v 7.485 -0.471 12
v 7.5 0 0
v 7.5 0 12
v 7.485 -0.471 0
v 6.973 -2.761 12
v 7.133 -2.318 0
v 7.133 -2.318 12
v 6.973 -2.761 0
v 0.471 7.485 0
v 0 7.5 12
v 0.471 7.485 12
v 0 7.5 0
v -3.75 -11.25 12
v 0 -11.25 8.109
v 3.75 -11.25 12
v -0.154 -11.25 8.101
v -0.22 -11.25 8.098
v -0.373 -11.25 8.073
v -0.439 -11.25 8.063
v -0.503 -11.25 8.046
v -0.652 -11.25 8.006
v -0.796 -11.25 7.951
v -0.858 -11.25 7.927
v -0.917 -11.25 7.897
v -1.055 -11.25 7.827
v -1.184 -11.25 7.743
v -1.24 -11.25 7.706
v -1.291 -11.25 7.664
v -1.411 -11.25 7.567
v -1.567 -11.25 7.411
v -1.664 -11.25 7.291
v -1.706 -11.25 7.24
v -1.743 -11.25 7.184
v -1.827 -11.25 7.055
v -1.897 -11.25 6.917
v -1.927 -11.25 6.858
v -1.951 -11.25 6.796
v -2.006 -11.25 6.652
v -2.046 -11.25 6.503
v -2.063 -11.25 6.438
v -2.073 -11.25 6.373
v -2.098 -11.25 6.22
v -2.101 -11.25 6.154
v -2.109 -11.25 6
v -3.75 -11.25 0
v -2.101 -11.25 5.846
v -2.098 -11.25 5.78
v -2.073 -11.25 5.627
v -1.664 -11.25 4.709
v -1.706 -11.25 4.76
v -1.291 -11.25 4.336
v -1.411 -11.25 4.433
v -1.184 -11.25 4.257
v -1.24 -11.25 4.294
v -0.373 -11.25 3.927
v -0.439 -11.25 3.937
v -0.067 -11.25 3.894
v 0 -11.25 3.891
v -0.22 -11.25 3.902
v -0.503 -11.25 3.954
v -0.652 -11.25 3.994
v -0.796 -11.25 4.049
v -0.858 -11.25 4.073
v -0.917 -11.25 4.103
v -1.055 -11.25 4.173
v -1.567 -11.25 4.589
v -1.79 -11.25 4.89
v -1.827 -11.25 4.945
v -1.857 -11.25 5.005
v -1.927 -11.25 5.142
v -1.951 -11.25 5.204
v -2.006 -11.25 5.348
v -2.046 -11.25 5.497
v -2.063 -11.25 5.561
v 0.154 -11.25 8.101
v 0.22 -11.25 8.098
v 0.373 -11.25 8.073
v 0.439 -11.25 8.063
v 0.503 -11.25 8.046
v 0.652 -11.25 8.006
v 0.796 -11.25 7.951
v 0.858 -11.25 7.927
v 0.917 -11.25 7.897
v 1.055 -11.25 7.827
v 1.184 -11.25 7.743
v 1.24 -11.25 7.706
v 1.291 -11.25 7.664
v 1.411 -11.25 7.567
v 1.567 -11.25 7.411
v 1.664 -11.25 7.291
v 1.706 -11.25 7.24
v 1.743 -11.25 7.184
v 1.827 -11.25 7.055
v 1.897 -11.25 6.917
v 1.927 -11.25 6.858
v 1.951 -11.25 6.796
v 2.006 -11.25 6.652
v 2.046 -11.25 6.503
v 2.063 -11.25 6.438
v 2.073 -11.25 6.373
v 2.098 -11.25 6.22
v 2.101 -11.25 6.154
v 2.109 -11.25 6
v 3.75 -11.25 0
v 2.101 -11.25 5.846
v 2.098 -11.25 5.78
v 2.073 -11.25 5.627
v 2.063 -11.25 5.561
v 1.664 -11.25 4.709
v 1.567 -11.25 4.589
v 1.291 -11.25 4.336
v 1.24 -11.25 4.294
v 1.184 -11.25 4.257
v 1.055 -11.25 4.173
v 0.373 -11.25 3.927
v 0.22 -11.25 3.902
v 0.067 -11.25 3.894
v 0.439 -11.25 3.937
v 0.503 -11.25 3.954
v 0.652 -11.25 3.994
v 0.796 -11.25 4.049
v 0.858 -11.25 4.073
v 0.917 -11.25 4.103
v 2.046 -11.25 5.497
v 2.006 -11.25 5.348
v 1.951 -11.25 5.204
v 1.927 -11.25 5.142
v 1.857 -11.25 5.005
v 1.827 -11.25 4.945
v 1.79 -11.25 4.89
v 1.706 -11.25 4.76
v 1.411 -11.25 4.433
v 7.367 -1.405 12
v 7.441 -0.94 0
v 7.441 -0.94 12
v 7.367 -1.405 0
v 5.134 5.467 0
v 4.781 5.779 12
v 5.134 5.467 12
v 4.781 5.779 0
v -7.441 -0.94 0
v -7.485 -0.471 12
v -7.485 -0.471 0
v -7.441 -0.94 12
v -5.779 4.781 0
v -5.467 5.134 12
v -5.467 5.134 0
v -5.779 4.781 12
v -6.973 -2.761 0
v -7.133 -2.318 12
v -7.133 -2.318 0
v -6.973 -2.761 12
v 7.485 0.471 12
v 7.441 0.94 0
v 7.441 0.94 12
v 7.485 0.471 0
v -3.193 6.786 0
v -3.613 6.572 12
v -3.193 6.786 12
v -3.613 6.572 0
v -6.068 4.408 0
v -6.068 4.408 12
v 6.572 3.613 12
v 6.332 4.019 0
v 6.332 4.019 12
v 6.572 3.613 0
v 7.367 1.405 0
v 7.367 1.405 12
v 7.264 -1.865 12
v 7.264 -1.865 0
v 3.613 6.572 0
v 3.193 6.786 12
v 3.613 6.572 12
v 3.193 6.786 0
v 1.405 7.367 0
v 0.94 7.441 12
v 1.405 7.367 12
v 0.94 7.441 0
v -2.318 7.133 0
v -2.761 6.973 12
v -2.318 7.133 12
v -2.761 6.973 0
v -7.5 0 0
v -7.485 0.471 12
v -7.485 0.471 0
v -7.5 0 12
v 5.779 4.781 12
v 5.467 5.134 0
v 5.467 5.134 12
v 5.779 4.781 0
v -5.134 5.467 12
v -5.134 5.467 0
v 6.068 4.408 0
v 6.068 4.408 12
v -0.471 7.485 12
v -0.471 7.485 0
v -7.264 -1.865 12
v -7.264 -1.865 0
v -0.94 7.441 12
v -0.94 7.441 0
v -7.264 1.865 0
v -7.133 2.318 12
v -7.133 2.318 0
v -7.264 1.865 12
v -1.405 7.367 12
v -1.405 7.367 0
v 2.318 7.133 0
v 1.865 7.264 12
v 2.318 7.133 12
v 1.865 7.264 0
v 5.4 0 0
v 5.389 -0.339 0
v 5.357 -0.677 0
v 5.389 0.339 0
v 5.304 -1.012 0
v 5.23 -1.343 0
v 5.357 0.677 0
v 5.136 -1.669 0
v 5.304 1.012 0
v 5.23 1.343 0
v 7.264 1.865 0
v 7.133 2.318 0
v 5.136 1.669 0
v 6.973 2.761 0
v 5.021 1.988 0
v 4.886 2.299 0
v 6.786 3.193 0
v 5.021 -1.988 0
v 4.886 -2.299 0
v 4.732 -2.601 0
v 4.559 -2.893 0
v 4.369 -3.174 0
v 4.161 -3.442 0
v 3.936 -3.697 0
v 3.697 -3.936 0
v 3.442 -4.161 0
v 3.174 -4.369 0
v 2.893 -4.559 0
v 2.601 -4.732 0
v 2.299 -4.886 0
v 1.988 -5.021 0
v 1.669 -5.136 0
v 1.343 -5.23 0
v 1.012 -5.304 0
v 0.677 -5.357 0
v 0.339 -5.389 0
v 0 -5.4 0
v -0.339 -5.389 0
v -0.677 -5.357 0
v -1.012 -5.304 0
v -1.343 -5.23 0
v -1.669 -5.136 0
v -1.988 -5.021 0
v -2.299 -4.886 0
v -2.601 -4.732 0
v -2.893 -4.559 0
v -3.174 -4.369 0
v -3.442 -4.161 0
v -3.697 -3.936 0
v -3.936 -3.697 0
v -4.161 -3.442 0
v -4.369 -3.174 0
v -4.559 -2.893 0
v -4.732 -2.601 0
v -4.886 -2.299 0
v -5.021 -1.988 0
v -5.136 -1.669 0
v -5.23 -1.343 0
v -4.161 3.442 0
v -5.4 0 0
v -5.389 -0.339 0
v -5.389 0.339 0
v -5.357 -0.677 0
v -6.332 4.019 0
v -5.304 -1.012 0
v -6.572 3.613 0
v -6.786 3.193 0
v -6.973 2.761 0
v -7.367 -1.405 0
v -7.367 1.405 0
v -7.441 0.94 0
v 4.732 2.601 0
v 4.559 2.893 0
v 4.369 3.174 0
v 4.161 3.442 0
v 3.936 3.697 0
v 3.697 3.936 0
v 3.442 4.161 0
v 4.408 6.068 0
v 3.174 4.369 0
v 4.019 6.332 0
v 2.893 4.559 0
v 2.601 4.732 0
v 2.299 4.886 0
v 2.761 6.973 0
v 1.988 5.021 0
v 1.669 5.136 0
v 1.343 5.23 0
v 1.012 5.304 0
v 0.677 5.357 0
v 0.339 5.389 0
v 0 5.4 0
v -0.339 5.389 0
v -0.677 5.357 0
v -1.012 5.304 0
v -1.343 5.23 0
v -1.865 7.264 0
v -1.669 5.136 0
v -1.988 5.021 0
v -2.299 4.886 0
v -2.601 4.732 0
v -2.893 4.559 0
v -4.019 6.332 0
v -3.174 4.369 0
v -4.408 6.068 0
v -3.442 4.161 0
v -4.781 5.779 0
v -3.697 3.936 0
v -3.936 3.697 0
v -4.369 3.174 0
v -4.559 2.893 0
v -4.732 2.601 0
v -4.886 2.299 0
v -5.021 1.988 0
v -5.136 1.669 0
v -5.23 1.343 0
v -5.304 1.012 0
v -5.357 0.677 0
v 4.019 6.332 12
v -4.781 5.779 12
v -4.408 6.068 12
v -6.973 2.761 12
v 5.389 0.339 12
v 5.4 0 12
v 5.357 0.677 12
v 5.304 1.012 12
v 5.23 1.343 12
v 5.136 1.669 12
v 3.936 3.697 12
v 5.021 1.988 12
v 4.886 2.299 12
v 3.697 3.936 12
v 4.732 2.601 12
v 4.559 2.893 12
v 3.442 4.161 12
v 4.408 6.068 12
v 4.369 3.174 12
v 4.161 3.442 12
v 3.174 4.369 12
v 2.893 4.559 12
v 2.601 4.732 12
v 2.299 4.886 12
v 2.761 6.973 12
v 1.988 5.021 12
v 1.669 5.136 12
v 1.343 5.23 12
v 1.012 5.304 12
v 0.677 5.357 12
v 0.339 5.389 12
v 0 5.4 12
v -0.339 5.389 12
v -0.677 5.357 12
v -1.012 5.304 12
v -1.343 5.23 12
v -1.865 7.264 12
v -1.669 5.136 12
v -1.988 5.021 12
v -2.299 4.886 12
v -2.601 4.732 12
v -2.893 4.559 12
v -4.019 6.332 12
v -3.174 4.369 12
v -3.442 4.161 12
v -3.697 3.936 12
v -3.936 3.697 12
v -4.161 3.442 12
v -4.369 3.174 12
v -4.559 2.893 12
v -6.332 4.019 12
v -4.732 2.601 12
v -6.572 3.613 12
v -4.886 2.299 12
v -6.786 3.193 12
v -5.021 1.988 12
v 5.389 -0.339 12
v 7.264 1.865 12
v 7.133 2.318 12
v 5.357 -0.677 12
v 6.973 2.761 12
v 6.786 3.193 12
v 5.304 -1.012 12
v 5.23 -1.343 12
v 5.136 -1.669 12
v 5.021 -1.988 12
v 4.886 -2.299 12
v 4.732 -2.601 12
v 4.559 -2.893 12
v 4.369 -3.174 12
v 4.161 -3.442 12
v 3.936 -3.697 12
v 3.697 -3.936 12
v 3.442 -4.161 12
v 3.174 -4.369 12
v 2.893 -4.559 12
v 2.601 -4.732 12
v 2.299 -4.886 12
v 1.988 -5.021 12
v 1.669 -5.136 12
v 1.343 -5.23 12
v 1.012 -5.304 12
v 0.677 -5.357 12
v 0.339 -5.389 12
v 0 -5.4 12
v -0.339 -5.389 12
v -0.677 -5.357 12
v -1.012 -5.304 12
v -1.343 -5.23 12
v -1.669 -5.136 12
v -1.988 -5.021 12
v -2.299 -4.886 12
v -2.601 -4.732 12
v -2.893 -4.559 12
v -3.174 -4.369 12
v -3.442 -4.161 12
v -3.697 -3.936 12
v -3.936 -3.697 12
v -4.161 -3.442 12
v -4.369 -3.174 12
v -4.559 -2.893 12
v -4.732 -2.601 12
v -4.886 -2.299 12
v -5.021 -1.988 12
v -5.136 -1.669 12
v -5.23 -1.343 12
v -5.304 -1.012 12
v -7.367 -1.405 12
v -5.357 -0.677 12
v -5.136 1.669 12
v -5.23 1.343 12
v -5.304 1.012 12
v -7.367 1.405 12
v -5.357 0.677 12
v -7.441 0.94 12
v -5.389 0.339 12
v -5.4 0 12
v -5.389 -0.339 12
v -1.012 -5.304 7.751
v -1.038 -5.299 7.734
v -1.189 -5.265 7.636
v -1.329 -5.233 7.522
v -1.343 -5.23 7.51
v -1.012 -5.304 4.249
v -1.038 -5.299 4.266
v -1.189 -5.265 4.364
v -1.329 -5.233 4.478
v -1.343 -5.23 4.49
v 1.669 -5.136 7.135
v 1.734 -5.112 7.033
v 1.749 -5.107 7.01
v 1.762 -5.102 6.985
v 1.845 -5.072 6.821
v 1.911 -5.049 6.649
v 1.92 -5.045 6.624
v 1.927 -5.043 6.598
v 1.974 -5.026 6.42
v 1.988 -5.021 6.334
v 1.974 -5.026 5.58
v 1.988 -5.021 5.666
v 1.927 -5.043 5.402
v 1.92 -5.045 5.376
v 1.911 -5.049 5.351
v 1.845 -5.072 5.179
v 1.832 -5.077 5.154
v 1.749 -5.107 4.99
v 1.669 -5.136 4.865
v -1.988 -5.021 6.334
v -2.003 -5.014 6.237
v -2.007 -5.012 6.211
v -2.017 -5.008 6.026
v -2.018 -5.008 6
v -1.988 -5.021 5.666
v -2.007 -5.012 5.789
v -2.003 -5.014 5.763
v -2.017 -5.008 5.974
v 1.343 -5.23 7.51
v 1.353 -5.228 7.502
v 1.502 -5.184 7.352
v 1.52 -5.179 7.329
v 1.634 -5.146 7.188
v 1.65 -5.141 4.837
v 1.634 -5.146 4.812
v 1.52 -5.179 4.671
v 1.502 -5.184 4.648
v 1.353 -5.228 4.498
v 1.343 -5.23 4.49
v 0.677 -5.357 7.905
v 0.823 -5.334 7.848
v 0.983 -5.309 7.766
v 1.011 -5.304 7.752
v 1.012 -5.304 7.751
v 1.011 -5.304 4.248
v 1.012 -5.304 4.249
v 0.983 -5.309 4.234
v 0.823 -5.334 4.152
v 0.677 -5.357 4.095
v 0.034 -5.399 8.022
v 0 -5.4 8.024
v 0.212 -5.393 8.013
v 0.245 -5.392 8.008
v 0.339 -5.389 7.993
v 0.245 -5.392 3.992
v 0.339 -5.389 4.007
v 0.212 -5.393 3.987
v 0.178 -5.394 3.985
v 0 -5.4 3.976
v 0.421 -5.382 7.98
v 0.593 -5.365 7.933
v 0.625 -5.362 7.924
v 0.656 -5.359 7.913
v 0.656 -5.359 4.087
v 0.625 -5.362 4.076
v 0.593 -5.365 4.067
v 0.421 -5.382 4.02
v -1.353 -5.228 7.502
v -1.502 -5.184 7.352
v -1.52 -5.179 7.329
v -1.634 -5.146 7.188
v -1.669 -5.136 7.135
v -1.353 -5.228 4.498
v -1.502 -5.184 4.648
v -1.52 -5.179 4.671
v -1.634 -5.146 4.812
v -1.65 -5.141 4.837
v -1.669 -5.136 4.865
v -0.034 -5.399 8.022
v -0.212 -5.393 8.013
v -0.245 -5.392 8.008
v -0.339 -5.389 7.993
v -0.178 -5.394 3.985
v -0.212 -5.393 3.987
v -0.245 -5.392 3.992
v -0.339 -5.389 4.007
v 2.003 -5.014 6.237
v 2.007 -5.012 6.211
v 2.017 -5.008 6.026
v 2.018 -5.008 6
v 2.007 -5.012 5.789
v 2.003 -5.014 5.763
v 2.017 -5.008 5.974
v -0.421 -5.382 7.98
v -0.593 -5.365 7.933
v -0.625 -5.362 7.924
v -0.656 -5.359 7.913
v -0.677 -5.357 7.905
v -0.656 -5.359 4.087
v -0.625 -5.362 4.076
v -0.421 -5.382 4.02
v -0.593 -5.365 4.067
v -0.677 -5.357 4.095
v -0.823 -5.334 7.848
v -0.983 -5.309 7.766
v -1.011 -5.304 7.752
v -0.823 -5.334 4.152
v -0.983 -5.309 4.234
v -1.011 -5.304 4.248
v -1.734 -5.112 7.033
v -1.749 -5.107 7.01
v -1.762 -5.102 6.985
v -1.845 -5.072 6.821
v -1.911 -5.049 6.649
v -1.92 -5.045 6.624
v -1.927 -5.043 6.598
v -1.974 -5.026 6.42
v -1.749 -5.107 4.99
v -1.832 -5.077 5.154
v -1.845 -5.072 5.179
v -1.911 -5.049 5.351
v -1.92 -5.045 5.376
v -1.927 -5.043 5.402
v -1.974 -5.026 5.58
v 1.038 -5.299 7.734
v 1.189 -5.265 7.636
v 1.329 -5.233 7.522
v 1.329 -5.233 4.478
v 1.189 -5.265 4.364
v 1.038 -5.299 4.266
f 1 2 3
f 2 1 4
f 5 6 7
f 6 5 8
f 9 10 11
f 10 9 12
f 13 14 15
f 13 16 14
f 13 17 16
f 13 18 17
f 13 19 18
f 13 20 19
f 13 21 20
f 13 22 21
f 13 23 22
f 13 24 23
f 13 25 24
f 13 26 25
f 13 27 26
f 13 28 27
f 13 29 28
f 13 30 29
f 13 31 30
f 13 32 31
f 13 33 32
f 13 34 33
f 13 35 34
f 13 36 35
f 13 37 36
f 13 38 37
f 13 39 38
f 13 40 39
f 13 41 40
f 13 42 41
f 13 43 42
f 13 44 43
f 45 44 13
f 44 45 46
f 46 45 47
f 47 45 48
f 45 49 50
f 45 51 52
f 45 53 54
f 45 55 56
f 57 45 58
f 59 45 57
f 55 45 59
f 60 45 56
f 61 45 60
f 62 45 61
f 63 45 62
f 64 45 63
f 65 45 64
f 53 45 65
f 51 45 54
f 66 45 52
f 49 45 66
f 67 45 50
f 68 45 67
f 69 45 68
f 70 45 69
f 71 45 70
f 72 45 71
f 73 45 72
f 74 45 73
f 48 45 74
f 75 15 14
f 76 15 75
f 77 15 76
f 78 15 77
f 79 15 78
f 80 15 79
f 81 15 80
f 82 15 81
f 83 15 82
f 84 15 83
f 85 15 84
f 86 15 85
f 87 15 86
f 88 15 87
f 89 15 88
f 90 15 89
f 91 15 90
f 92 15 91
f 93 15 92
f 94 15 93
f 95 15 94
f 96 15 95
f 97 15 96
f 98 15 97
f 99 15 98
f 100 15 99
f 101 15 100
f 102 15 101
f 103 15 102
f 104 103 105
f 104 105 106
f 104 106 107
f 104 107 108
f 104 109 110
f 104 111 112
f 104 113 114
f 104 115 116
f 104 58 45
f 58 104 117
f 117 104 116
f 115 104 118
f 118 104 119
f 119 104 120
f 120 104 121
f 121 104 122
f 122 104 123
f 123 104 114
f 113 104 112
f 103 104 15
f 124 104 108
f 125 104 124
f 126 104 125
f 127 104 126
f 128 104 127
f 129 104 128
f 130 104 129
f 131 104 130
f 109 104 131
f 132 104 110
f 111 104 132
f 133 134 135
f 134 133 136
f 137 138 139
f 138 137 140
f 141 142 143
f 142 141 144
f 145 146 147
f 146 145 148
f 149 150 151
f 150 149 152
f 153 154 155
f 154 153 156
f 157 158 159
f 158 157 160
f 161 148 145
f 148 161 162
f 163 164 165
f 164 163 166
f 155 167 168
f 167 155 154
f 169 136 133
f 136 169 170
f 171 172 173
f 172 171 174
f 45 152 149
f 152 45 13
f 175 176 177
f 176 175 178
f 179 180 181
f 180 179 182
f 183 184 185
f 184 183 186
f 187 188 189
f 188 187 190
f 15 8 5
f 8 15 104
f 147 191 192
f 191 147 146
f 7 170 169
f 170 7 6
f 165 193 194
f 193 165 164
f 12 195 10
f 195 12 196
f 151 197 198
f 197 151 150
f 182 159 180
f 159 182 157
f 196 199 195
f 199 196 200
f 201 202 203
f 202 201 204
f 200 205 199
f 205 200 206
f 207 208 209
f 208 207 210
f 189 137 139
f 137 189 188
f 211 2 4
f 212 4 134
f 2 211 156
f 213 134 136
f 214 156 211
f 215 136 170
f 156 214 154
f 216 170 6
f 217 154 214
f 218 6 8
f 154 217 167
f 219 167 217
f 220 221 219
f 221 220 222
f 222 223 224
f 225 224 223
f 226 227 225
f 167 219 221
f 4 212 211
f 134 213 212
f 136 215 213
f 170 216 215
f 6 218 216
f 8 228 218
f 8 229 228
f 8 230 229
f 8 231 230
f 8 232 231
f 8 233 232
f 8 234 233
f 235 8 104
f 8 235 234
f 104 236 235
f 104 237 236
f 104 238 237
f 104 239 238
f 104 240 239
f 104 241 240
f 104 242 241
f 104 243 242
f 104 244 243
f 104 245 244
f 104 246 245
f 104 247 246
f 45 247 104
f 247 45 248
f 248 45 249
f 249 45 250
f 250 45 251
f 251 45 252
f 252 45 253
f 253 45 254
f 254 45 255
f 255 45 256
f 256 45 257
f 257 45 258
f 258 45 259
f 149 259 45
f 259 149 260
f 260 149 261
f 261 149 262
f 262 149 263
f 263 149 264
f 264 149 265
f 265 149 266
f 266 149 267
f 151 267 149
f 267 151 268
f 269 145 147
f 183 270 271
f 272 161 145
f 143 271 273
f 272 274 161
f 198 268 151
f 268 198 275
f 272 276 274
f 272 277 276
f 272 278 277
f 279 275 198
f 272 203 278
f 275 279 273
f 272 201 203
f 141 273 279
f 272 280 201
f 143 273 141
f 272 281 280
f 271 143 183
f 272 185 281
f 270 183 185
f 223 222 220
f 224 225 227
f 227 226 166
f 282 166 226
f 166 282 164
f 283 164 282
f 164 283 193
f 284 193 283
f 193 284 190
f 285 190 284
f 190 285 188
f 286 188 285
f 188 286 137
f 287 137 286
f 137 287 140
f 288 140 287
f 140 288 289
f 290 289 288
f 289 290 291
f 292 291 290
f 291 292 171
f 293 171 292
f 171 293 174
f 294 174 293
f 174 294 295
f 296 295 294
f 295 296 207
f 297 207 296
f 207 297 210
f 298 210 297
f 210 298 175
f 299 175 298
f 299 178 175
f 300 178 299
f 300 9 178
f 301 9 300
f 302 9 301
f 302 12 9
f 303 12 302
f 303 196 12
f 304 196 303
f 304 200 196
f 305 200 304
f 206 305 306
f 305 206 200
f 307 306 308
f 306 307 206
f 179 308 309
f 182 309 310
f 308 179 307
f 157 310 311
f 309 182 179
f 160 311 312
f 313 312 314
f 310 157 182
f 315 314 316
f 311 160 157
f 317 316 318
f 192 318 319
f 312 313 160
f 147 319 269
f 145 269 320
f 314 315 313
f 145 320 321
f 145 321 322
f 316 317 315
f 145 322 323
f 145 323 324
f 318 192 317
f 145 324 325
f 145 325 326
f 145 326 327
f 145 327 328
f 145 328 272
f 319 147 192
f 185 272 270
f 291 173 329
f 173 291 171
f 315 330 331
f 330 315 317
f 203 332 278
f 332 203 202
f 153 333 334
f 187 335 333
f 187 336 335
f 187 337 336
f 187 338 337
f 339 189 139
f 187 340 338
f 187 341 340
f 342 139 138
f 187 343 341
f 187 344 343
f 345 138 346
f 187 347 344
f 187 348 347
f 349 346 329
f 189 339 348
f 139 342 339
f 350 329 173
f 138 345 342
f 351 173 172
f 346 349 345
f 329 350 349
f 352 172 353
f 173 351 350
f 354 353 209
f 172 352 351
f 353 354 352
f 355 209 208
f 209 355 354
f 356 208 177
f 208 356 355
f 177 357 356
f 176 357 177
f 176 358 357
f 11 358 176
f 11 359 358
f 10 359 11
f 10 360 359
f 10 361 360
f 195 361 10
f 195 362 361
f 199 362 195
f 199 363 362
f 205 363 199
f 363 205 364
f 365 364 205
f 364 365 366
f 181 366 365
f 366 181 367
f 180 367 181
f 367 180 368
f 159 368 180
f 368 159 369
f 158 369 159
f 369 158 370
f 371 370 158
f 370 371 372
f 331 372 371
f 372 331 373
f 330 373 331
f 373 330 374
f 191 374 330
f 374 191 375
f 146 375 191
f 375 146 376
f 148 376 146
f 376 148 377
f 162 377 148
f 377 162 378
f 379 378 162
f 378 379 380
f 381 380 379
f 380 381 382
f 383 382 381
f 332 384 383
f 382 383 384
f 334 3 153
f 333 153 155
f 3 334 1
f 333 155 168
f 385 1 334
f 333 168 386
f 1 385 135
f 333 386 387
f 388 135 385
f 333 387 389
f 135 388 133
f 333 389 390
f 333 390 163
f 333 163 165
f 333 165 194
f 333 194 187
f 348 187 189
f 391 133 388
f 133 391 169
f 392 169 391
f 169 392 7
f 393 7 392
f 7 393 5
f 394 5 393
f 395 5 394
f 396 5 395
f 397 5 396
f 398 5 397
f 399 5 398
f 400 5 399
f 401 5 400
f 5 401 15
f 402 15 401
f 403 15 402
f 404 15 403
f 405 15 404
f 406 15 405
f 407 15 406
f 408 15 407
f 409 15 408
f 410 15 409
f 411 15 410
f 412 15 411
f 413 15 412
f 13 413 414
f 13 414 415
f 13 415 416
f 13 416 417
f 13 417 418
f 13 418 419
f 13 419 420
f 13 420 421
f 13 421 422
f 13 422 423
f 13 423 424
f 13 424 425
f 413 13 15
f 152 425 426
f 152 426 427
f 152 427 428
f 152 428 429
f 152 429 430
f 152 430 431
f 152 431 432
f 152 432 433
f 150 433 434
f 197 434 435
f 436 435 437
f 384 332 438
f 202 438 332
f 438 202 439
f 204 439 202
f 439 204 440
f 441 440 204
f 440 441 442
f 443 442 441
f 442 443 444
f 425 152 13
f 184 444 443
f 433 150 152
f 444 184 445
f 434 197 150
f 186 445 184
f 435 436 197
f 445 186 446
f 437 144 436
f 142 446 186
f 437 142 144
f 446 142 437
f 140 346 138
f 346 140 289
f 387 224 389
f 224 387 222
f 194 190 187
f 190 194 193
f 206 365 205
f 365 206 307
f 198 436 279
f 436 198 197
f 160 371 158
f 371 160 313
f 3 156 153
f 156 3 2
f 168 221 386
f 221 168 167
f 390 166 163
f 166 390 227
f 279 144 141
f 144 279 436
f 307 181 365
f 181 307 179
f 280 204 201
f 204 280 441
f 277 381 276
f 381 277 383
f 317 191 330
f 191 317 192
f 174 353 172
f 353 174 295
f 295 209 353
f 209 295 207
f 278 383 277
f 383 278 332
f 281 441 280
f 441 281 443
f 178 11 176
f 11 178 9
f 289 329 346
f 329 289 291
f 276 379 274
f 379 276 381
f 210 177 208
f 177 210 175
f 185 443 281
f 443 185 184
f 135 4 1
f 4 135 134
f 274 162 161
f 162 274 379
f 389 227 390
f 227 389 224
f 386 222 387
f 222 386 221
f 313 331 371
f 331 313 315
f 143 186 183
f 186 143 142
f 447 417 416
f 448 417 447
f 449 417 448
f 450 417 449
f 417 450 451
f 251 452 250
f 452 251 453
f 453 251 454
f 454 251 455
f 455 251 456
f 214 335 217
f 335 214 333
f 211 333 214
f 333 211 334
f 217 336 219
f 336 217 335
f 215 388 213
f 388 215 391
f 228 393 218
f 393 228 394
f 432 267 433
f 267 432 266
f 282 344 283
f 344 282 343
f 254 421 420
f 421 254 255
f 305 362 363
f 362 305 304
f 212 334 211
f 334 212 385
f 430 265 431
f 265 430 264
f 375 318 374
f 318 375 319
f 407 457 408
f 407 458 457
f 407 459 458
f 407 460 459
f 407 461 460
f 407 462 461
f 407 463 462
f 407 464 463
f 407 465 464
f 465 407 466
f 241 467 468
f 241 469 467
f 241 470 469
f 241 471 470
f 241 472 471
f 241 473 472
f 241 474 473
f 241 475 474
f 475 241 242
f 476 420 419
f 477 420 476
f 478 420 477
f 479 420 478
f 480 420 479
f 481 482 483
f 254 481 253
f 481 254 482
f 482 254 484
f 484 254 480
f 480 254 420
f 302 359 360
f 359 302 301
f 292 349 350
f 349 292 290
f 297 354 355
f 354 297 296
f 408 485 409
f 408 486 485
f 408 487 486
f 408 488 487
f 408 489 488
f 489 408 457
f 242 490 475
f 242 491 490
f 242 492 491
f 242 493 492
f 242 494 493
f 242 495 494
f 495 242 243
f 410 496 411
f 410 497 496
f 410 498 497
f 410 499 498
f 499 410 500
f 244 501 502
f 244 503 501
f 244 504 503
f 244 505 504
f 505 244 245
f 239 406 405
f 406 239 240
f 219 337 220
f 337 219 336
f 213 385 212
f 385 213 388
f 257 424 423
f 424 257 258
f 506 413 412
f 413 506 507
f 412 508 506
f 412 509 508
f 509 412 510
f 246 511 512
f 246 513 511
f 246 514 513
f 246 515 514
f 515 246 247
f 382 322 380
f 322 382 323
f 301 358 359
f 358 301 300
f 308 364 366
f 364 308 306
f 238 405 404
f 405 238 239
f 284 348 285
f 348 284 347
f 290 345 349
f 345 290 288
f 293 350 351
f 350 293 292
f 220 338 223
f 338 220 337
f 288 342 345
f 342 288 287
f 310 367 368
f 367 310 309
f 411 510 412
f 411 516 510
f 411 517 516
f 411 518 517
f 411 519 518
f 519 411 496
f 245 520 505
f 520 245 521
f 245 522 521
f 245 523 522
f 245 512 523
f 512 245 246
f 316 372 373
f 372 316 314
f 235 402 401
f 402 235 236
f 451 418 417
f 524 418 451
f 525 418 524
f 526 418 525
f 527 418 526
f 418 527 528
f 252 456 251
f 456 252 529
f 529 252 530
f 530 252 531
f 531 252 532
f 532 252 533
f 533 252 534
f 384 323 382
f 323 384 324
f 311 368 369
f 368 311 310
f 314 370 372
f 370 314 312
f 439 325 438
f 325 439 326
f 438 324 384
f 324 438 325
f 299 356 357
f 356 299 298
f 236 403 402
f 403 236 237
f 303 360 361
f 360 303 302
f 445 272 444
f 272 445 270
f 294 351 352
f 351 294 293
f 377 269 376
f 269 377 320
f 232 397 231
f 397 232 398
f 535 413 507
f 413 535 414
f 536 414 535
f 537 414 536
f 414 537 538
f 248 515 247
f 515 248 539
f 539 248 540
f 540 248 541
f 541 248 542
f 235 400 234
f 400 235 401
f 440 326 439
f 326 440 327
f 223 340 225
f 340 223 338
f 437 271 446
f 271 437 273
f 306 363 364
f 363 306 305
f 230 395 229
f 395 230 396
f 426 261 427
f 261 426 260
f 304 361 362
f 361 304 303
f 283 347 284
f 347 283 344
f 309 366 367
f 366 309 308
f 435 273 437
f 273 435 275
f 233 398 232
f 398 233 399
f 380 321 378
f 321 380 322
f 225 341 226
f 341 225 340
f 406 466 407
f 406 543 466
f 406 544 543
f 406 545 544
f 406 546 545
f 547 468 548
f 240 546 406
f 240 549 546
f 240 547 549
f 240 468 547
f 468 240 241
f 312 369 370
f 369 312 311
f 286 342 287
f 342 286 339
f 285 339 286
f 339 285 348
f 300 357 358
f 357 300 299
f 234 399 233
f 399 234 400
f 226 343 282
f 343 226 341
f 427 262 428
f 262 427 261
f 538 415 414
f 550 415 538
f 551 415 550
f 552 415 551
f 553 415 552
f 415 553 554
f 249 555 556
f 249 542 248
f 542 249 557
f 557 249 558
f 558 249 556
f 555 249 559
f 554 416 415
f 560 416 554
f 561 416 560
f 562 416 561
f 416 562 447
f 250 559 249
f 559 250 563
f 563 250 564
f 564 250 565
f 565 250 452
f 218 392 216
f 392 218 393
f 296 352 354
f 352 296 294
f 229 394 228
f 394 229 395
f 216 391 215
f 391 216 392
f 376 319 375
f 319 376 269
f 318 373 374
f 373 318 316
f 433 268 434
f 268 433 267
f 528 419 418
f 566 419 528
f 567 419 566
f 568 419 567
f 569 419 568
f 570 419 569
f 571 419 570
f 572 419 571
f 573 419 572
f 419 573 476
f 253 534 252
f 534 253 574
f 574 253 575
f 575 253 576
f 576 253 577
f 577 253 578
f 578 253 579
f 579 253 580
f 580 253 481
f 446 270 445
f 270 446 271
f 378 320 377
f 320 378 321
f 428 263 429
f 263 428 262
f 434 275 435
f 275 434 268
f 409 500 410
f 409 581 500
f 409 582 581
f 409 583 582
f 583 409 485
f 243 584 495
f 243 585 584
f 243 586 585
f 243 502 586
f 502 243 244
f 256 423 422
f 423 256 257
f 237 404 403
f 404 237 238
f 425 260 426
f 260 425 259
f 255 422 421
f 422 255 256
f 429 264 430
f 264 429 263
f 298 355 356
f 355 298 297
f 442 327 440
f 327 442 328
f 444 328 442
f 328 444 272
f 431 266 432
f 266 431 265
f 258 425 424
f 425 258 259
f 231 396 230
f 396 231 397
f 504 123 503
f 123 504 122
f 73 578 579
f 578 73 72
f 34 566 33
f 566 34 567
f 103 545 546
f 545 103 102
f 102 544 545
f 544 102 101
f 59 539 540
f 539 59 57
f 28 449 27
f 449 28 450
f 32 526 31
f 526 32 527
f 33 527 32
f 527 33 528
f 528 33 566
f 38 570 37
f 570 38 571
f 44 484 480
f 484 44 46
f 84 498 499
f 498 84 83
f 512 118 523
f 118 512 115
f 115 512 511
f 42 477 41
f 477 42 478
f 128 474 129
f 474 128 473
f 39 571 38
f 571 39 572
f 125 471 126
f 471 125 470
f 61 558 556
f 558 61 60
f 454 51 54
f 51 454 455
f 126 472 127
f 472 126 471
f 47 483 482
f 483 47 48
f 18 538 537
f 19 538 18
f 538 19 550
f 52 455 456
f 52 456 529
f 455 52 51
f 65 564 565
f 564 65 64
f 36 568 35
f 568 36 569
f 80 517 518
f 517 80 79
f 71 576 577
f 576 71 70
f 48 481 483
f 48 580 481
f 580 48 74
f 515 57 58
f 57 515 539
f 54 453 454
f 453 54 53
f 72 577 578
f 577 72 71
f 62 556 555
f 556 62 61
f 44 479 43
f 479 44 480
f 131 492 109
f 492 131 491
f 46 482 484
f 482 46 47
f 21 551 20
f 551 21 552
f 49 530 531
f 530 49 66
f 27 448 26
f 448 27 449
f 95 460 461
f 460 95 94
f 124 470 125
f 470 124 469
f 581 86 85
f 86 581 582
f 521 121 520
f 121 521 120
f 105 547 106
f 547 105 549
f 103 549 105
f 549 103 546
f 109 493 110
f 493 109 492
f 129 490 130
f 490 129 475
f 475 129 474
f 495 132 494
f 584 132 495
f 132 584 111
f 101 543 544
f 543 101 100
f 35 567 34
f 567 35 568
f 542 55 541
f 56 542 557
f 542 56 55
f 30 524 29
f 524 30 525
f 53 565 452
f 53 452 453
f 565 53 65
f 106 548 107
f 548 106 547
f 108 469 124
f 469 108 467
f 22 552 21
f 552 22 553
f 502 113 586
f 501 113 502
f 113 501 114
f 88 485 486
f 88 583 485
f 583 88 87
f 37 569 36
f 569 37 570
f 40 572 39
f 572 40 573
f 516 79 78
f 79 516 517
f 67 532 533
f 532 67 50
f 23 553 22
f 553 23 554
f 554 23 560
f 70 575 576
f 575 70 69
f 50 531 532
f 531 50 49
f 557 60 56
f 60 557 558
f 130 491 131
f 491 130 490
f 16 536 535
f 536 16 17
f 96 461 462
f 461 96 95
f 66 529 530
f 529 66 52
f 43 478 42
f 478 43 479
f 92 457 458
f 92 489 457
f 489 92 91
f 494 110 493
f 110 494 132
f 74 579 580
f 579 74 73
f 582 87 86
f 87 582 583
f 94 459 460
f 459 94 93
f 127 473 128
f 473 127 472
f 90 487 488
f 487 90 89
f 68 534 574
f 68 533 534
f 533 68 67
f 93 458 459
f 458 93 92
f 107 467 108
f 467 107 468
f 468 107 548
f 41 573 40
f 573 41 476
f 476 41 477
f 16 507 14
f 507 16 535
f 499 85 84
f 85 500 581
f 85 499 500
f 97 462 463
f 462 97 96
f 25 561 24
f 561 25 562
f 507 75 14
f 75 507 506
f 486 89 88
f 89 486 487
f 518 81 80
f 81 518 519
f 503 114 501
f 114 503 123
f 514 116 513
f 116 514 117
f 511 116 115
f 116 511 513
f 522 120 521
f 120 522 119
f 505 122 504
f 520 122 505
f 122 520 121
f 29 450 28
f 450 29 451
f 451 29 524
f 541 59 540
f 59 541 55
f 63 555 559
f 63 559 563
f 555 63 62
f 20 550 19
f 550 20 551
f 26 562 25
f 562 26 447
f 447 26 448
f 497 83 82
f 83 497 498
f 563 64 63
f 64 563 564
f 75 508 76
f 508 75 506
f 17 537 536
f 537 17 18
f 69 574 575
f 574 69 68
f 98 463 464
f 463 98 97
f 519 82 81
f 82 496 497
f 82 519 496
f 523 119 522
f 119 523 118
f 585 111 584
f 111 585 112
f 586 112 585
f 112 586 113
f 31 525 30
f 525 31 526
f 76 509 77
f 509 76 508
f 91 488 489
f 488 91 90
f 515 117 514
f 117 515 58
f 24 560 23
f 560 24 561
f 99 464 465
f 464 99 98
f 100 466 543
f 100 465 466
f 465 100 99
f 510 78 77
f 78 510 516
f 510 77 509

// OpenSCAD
// file: constants.scad
platform_height = 3;
stilt_height = 16;
stilt_radius = 5;
back_plate_platform_height = 2.5;
socket_height = stilt_height - 4;
socket_screw_height = socket_height/2;
socket_radius = stilt_radius + 2.5;

x_index = 0;
y_index = 1;
anchor_x_index = 2;
anchor_y_index = 3;

module socket_screw_hole() {
    translate([0, 0, socket_screw_height]) rotate([90, 0, 0]) cylinder(r1=2, r2=2.16, h=stilt_radius * 2 + 1, $fn=60);
}
// main file
include <constants.scad>;

module stilt_socket() {
    radius = socket_radius;
    difference() {
        hull() {
            cylinder(r=radius, h=socket_height, $fn = 100);
            translate([-radius/2, -radius*1.5, 0]) cube(size=[radius, radius, socket_height]);
        }
        translate([0, 0, -2]) cylinder(r=stilt_radius + 0.4, h=socket_height + 10, $fn = 100);
        translate([0, -socket_radius/2, 0]) socket_screw_hole();
    }
}

stilt_socket();
